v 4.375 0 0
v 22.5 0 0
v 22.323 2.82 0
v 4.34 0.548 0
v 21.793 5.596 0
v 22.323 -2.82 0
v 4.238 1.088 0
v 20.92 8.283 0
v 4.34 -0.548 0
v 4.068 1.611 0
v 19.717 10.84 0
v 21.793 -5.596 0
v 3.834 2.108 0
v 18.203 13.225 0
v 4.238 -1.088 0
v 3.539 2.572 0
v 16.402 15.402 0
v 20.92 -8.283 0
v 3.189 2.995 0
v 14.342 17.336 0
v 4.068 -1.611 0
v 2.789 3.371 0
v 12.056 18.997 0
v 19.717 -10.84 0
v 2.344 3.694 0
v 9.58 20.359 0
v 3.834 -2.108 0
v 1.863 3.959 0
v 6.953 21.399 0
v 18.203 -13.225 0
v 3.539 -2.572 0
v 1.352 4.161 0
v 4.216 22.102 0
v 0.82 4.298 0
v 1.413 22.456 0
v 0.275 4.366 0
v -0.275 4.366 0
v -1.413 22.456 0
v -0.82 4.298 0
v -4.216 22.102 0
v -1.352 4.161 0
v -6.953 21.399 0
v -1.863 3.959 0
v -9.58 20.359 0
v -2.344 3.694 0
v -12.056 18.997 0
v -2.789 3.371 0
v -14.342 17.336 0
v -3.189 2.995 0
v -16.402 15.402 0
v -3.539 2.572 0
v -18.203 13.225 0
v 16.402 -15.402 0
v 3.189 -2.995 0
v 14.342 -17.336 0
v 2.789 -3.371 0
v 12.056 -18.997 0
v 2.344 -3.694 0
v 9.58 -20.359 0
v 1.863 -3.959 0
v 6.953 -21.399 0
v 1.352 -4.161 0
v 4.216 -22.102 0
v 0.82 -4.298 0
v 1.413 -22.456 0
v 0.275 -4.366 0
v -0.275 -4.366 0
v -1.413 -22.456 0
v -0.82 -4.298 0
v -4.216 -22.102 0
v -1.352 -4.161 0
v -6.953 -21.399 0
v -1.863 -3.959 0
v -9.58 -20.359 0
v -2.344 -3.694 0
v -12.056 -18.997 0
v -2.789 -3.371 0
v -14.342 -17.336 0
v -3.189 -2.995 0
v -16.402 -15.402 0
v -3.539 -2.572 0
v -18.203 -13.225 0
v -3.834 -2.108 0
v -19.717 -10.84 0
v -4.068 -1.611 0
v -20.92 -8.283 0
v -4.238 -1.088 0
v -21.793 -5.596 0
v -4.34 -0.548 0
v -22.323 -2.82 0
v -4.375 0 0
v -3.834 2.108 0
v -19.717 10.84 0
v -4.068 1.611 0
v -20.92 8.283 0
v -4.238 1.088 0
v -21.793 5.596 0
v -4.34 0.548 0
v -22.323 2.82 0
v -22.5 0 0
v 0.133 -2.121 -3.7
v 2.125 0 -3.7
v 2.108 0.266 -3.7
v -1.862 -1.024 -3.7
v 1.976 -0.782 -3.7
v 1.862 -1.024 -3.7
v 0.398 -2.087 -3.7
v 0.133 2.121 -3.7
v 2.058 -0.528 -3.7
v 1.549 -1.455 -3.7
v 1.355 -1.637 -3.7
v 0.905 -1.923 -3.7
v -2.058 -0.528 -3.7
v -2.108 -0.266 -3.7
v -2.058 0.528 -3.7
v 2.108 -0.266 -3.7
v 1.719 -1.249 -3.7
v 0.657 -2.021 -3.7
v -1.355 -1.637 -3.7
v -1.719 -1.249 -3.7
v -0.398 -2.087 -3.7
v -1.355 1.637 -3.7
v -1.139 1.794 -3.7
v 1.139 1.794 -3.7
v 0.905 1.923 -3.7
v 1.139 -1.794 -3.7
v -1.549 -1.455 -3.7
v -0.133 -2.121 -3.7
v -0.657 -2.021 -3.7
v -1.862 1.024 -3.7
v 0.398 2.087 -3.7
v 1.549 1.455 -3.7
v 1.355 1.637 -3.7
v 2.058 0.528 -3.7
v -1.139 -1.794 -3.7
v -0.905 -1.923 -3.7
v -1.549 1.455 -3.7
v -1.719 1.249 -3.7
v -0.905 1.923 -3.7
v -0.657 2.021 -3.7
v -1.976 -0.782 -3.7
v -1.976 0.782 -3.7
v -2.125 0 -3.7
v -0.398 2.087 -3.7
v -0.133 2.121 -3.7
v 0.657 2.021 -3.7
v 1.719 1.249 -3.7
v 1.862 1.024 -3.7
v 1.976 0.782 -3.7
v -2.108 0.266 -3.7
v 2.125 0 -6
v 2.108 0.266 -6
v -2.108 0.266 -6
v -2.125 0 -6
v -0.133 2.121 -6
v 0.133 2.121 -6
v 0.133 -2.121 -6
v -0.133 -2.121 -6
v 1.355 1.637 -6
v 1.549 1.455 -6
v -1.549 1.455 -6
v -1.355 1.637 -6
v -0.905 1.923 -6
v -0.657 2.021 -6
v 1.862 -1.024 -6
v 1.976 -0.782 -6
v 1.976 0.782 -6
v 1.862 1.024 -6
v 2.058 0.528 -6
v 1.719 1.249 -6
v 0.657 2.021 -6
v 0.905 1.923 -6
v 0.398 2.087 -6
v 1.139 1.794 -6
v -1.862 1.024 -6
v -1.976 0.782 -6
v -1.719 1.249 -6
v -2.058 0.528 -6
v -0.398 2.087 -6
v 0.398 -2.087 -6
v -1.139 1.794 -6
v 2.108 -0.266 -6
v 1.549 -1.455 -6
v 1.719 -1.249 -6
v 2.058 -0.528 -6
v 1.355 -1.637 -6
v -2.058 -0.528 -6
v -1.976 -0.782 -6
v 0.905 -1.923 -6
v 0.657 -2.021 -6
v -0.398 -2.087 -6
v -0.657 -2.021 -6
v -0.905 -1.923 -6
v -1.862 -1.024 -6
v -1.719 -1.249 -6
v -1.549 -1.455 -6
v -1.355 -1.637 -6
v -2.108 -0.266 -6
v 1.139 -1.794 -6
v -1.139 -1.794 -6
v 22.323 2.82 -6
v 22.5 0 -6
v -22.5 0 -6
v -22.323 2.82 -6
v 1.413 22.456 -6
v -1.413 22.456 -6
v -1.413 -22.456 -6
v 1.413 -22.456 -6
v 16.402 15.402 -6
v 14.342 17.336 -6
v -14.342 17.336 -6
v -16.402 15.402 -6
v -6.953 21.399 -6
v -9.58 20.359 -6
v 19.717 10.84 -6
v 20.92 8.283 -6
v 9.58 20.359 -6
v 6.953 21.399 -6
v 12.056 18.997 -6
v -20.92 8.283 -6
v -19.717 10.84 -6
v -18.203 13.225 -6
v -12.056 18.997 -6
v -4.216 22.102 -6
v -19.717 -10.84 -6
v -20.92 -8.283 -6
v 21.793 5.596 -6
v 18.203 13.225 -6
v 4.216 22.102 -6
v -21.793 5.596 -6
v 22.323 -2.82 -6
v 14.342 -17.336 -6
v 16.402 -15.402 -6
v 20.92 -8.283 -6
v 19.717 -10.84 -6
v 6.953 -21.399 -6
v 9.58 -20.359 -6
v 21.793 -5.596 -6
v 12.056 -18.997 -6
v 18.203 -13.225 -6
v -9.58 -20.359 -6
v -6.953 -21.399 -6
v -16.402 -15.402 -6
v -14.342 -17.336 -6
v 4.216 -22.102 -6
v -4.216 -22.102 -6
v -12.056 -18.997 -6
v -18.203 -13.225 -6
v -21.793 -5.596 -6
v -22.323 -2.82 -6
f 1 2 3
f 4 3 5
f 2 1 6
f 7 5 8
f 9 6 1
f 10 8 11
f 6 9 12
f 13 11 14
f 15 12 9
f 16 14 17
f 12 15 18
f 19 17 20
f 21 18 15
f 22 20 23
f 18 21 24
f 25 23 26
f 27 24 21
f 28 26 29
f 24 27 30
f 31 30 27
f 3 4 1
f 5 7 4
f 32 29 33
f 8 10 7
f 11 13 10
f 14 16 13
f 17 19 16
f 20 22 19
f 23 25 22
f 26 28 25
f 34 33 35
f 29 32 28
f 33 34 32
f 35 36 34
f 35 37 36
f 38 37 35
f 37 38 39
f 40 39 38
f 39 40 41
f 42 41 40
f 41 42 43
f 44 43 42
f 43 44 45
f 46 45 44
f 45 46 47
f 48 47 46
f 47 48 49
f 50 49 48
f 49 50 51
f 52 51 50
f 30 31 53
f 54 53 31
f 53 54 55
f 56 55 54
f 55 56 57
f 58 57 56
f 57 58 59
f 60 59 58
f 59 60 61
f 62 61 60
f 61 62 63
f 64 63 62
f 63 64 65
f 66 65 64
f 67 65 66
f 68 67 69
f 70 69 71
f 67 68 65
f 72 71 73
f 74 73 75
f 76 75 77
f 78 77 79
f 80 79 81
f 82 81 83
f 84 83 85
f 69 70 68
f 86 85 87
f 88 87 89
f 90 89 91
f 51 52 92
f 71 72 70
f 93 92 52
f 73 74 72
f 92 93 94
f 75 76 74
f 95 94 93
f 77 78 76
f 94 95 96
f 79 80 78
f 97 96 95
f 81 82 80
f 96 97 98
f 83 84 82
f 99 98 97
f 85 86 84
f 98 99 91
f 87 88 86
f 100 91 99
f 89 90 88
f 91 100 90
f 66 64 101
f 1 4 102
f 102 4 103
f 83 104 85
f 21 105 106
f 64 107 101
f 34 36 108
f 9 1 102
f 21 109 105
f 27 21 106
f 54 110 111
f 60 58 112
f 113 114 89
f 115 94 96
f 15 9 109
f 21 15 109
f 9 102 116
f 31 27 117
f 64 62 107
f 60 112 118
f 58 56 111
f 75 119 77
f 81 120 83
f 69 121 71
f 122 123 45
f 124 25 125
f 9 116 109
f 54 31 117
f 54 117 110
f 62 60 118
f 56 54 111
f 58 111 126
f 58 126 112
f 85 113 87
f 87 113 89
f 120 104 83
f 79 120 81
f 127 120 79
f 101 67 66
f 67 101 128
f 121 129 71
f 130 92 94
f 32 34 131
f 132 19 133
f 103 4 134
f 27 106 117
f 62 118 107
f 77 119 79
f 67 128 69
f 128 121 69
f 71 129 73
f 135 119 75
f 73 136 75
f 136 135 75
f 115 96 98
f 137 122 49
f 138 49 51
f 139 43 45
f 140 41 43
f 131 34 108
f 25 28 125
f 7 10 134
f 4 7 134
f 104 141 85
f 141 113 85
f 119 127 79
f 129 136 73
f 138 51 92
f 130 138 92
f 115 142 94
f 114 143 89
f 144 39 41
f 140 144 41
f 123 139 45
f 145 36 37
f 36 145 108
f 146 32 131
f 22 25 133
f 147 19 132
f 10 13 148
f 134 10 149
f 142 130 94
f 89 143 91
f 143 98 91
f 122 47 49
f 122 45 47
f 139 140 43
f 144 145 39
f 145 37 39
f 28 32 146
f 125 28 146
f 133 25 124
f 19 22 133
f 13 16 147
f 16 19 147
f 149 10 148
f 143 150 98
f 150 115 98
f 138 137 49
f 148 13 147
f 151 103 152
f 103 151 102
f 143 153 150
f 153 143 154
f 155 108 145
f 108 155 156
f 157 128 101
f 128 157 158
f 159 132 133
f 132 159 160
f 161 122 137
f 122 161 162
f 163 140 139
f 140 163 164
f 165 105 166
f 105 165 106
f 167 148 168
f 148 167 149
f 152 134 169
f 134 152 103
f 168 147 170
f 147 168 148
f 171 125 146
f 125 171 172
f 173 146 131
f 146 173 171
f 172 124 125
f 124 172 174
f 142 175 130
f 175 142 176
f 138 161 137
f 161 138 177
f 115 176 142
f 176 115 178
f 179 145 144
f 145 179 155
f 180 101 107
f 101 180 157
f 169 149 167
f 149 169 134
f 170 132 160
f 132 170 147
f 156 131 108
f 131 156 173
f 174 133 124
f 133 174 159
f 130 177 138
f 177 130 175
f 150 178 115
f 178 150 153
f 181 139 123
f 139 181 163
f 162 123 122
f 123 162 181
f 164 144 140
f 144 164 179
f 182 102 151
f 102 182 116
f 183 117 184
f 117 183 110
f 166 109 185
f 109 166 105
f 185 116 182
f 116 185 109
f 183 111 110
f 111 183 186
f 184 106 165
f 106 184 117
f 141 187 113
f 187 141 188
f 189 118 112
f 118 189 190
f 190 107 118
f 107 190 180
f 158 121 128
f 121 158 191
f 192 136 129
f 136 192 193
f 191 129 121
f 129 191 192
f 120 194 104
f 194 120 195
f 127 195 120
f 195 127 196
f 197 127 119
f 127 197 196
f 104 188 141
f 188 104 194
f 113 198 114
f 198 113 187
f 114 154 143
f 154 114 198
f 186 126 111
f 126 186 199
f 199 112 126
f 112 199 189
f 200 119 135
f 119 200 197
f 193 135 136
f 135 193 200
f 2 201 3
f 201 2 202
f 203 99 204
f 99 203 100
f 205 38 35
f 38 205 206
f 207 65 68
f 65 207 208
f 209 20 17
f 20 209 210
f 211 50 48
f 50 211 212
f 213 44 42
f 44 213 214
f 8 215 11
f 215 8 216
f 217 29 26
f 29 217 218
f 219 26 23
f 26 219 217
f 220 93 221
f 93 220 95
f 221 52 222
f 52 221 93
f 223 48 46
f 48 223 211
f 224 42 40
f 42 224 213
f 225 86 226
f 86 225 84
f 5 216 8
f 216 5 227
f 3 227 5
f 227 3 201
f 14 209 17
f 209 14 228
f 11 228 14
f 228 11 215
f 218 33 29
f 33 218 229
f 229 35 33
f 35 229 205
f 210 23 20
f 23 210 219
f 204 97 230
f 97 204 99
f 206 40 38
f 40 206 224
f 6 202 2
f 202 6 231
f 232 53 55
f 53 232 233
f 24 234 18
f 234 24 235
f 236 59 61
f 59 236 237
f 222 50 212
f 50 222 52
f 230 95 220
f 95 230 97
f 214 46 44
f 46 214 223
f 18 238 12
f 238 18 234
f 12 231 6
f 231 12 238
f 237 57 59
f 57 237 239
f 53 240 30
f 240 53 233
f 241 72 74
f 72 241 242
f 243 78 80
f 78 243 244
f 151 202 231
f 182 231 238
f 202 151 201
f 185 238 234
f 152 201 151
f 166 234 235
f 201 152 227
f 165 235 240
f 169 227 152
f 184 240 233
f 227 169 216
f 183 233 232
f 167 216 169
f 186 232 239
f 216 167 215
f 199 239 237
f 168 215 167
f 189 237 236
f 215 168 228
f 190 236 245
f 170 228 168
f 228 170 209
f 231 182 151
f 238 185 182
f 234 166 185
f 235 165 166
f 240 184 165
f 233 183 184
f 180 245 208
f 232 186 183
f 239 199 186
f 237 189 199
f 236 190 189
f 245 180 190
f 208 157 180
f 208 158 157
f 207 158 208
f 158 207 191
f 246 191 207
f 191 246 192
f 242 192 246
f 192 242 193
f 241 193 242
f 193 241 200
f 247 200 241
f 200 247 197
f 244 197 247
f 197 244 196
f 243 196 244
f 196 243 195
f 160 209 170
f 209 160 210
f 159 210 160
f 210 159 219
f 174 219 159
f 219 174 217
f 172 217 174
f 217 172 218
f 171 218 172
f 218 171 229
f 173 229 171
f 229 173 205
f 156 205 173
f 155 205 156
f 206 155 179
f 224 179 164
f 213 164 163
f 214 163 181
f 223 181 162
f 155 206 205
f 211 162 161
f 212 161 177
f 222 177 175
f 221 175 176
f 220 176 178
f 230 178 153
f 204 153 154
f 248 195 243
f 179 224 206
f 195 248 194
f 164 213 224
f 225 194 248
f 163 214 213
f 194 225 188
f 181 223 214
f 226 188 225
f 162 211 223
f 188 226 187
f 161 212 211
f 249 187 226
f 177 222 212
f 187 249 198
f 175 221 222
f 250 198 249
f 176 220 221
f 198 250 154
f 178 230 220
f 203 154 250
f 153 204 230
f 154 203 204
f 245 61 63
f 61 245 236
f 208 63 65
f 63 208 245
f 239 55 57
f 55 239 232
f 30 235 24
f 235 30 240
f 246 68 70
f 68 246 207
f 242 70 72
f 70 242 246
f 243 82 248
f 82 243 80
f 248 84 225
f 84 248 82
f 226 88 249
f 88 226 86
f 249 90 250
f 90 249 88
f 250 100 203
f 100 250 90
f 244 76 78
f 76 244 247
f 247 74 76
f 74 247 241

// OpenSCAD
$fn = 50;


difference() {
	union() {
		translate(v = [0, 0, -6.0000000000]) {
			cylinder(h = 6, r = 22.5000000000);
		}
	}
	union() {
		translate(v = [0, 0, 0]) {
			rotate(a = [0, 0, 0]) {
				difference() {
					union() {
						translate(v = [0, 0, -9.0000000000]) {
							cylinder(h = 9, r = 2.0000000000);
						}
						translate(v = [0, 0, -3.7000000000]) {
							cylinder(h = 3.7000000000, r1 = 2.1250000000, r2 = 4.3750000000);
						}
						translate(v = [0, 0, -9.0000000000]) {
							cylinder(h = 9, r = 2.1250000000);
						}
						translate(v = [0, 0, -9.0000000000]) {
							cylinder(h = 9, r = 2.0000000000);
						}
					}
					union();
				}
			}
		}
	}
}
